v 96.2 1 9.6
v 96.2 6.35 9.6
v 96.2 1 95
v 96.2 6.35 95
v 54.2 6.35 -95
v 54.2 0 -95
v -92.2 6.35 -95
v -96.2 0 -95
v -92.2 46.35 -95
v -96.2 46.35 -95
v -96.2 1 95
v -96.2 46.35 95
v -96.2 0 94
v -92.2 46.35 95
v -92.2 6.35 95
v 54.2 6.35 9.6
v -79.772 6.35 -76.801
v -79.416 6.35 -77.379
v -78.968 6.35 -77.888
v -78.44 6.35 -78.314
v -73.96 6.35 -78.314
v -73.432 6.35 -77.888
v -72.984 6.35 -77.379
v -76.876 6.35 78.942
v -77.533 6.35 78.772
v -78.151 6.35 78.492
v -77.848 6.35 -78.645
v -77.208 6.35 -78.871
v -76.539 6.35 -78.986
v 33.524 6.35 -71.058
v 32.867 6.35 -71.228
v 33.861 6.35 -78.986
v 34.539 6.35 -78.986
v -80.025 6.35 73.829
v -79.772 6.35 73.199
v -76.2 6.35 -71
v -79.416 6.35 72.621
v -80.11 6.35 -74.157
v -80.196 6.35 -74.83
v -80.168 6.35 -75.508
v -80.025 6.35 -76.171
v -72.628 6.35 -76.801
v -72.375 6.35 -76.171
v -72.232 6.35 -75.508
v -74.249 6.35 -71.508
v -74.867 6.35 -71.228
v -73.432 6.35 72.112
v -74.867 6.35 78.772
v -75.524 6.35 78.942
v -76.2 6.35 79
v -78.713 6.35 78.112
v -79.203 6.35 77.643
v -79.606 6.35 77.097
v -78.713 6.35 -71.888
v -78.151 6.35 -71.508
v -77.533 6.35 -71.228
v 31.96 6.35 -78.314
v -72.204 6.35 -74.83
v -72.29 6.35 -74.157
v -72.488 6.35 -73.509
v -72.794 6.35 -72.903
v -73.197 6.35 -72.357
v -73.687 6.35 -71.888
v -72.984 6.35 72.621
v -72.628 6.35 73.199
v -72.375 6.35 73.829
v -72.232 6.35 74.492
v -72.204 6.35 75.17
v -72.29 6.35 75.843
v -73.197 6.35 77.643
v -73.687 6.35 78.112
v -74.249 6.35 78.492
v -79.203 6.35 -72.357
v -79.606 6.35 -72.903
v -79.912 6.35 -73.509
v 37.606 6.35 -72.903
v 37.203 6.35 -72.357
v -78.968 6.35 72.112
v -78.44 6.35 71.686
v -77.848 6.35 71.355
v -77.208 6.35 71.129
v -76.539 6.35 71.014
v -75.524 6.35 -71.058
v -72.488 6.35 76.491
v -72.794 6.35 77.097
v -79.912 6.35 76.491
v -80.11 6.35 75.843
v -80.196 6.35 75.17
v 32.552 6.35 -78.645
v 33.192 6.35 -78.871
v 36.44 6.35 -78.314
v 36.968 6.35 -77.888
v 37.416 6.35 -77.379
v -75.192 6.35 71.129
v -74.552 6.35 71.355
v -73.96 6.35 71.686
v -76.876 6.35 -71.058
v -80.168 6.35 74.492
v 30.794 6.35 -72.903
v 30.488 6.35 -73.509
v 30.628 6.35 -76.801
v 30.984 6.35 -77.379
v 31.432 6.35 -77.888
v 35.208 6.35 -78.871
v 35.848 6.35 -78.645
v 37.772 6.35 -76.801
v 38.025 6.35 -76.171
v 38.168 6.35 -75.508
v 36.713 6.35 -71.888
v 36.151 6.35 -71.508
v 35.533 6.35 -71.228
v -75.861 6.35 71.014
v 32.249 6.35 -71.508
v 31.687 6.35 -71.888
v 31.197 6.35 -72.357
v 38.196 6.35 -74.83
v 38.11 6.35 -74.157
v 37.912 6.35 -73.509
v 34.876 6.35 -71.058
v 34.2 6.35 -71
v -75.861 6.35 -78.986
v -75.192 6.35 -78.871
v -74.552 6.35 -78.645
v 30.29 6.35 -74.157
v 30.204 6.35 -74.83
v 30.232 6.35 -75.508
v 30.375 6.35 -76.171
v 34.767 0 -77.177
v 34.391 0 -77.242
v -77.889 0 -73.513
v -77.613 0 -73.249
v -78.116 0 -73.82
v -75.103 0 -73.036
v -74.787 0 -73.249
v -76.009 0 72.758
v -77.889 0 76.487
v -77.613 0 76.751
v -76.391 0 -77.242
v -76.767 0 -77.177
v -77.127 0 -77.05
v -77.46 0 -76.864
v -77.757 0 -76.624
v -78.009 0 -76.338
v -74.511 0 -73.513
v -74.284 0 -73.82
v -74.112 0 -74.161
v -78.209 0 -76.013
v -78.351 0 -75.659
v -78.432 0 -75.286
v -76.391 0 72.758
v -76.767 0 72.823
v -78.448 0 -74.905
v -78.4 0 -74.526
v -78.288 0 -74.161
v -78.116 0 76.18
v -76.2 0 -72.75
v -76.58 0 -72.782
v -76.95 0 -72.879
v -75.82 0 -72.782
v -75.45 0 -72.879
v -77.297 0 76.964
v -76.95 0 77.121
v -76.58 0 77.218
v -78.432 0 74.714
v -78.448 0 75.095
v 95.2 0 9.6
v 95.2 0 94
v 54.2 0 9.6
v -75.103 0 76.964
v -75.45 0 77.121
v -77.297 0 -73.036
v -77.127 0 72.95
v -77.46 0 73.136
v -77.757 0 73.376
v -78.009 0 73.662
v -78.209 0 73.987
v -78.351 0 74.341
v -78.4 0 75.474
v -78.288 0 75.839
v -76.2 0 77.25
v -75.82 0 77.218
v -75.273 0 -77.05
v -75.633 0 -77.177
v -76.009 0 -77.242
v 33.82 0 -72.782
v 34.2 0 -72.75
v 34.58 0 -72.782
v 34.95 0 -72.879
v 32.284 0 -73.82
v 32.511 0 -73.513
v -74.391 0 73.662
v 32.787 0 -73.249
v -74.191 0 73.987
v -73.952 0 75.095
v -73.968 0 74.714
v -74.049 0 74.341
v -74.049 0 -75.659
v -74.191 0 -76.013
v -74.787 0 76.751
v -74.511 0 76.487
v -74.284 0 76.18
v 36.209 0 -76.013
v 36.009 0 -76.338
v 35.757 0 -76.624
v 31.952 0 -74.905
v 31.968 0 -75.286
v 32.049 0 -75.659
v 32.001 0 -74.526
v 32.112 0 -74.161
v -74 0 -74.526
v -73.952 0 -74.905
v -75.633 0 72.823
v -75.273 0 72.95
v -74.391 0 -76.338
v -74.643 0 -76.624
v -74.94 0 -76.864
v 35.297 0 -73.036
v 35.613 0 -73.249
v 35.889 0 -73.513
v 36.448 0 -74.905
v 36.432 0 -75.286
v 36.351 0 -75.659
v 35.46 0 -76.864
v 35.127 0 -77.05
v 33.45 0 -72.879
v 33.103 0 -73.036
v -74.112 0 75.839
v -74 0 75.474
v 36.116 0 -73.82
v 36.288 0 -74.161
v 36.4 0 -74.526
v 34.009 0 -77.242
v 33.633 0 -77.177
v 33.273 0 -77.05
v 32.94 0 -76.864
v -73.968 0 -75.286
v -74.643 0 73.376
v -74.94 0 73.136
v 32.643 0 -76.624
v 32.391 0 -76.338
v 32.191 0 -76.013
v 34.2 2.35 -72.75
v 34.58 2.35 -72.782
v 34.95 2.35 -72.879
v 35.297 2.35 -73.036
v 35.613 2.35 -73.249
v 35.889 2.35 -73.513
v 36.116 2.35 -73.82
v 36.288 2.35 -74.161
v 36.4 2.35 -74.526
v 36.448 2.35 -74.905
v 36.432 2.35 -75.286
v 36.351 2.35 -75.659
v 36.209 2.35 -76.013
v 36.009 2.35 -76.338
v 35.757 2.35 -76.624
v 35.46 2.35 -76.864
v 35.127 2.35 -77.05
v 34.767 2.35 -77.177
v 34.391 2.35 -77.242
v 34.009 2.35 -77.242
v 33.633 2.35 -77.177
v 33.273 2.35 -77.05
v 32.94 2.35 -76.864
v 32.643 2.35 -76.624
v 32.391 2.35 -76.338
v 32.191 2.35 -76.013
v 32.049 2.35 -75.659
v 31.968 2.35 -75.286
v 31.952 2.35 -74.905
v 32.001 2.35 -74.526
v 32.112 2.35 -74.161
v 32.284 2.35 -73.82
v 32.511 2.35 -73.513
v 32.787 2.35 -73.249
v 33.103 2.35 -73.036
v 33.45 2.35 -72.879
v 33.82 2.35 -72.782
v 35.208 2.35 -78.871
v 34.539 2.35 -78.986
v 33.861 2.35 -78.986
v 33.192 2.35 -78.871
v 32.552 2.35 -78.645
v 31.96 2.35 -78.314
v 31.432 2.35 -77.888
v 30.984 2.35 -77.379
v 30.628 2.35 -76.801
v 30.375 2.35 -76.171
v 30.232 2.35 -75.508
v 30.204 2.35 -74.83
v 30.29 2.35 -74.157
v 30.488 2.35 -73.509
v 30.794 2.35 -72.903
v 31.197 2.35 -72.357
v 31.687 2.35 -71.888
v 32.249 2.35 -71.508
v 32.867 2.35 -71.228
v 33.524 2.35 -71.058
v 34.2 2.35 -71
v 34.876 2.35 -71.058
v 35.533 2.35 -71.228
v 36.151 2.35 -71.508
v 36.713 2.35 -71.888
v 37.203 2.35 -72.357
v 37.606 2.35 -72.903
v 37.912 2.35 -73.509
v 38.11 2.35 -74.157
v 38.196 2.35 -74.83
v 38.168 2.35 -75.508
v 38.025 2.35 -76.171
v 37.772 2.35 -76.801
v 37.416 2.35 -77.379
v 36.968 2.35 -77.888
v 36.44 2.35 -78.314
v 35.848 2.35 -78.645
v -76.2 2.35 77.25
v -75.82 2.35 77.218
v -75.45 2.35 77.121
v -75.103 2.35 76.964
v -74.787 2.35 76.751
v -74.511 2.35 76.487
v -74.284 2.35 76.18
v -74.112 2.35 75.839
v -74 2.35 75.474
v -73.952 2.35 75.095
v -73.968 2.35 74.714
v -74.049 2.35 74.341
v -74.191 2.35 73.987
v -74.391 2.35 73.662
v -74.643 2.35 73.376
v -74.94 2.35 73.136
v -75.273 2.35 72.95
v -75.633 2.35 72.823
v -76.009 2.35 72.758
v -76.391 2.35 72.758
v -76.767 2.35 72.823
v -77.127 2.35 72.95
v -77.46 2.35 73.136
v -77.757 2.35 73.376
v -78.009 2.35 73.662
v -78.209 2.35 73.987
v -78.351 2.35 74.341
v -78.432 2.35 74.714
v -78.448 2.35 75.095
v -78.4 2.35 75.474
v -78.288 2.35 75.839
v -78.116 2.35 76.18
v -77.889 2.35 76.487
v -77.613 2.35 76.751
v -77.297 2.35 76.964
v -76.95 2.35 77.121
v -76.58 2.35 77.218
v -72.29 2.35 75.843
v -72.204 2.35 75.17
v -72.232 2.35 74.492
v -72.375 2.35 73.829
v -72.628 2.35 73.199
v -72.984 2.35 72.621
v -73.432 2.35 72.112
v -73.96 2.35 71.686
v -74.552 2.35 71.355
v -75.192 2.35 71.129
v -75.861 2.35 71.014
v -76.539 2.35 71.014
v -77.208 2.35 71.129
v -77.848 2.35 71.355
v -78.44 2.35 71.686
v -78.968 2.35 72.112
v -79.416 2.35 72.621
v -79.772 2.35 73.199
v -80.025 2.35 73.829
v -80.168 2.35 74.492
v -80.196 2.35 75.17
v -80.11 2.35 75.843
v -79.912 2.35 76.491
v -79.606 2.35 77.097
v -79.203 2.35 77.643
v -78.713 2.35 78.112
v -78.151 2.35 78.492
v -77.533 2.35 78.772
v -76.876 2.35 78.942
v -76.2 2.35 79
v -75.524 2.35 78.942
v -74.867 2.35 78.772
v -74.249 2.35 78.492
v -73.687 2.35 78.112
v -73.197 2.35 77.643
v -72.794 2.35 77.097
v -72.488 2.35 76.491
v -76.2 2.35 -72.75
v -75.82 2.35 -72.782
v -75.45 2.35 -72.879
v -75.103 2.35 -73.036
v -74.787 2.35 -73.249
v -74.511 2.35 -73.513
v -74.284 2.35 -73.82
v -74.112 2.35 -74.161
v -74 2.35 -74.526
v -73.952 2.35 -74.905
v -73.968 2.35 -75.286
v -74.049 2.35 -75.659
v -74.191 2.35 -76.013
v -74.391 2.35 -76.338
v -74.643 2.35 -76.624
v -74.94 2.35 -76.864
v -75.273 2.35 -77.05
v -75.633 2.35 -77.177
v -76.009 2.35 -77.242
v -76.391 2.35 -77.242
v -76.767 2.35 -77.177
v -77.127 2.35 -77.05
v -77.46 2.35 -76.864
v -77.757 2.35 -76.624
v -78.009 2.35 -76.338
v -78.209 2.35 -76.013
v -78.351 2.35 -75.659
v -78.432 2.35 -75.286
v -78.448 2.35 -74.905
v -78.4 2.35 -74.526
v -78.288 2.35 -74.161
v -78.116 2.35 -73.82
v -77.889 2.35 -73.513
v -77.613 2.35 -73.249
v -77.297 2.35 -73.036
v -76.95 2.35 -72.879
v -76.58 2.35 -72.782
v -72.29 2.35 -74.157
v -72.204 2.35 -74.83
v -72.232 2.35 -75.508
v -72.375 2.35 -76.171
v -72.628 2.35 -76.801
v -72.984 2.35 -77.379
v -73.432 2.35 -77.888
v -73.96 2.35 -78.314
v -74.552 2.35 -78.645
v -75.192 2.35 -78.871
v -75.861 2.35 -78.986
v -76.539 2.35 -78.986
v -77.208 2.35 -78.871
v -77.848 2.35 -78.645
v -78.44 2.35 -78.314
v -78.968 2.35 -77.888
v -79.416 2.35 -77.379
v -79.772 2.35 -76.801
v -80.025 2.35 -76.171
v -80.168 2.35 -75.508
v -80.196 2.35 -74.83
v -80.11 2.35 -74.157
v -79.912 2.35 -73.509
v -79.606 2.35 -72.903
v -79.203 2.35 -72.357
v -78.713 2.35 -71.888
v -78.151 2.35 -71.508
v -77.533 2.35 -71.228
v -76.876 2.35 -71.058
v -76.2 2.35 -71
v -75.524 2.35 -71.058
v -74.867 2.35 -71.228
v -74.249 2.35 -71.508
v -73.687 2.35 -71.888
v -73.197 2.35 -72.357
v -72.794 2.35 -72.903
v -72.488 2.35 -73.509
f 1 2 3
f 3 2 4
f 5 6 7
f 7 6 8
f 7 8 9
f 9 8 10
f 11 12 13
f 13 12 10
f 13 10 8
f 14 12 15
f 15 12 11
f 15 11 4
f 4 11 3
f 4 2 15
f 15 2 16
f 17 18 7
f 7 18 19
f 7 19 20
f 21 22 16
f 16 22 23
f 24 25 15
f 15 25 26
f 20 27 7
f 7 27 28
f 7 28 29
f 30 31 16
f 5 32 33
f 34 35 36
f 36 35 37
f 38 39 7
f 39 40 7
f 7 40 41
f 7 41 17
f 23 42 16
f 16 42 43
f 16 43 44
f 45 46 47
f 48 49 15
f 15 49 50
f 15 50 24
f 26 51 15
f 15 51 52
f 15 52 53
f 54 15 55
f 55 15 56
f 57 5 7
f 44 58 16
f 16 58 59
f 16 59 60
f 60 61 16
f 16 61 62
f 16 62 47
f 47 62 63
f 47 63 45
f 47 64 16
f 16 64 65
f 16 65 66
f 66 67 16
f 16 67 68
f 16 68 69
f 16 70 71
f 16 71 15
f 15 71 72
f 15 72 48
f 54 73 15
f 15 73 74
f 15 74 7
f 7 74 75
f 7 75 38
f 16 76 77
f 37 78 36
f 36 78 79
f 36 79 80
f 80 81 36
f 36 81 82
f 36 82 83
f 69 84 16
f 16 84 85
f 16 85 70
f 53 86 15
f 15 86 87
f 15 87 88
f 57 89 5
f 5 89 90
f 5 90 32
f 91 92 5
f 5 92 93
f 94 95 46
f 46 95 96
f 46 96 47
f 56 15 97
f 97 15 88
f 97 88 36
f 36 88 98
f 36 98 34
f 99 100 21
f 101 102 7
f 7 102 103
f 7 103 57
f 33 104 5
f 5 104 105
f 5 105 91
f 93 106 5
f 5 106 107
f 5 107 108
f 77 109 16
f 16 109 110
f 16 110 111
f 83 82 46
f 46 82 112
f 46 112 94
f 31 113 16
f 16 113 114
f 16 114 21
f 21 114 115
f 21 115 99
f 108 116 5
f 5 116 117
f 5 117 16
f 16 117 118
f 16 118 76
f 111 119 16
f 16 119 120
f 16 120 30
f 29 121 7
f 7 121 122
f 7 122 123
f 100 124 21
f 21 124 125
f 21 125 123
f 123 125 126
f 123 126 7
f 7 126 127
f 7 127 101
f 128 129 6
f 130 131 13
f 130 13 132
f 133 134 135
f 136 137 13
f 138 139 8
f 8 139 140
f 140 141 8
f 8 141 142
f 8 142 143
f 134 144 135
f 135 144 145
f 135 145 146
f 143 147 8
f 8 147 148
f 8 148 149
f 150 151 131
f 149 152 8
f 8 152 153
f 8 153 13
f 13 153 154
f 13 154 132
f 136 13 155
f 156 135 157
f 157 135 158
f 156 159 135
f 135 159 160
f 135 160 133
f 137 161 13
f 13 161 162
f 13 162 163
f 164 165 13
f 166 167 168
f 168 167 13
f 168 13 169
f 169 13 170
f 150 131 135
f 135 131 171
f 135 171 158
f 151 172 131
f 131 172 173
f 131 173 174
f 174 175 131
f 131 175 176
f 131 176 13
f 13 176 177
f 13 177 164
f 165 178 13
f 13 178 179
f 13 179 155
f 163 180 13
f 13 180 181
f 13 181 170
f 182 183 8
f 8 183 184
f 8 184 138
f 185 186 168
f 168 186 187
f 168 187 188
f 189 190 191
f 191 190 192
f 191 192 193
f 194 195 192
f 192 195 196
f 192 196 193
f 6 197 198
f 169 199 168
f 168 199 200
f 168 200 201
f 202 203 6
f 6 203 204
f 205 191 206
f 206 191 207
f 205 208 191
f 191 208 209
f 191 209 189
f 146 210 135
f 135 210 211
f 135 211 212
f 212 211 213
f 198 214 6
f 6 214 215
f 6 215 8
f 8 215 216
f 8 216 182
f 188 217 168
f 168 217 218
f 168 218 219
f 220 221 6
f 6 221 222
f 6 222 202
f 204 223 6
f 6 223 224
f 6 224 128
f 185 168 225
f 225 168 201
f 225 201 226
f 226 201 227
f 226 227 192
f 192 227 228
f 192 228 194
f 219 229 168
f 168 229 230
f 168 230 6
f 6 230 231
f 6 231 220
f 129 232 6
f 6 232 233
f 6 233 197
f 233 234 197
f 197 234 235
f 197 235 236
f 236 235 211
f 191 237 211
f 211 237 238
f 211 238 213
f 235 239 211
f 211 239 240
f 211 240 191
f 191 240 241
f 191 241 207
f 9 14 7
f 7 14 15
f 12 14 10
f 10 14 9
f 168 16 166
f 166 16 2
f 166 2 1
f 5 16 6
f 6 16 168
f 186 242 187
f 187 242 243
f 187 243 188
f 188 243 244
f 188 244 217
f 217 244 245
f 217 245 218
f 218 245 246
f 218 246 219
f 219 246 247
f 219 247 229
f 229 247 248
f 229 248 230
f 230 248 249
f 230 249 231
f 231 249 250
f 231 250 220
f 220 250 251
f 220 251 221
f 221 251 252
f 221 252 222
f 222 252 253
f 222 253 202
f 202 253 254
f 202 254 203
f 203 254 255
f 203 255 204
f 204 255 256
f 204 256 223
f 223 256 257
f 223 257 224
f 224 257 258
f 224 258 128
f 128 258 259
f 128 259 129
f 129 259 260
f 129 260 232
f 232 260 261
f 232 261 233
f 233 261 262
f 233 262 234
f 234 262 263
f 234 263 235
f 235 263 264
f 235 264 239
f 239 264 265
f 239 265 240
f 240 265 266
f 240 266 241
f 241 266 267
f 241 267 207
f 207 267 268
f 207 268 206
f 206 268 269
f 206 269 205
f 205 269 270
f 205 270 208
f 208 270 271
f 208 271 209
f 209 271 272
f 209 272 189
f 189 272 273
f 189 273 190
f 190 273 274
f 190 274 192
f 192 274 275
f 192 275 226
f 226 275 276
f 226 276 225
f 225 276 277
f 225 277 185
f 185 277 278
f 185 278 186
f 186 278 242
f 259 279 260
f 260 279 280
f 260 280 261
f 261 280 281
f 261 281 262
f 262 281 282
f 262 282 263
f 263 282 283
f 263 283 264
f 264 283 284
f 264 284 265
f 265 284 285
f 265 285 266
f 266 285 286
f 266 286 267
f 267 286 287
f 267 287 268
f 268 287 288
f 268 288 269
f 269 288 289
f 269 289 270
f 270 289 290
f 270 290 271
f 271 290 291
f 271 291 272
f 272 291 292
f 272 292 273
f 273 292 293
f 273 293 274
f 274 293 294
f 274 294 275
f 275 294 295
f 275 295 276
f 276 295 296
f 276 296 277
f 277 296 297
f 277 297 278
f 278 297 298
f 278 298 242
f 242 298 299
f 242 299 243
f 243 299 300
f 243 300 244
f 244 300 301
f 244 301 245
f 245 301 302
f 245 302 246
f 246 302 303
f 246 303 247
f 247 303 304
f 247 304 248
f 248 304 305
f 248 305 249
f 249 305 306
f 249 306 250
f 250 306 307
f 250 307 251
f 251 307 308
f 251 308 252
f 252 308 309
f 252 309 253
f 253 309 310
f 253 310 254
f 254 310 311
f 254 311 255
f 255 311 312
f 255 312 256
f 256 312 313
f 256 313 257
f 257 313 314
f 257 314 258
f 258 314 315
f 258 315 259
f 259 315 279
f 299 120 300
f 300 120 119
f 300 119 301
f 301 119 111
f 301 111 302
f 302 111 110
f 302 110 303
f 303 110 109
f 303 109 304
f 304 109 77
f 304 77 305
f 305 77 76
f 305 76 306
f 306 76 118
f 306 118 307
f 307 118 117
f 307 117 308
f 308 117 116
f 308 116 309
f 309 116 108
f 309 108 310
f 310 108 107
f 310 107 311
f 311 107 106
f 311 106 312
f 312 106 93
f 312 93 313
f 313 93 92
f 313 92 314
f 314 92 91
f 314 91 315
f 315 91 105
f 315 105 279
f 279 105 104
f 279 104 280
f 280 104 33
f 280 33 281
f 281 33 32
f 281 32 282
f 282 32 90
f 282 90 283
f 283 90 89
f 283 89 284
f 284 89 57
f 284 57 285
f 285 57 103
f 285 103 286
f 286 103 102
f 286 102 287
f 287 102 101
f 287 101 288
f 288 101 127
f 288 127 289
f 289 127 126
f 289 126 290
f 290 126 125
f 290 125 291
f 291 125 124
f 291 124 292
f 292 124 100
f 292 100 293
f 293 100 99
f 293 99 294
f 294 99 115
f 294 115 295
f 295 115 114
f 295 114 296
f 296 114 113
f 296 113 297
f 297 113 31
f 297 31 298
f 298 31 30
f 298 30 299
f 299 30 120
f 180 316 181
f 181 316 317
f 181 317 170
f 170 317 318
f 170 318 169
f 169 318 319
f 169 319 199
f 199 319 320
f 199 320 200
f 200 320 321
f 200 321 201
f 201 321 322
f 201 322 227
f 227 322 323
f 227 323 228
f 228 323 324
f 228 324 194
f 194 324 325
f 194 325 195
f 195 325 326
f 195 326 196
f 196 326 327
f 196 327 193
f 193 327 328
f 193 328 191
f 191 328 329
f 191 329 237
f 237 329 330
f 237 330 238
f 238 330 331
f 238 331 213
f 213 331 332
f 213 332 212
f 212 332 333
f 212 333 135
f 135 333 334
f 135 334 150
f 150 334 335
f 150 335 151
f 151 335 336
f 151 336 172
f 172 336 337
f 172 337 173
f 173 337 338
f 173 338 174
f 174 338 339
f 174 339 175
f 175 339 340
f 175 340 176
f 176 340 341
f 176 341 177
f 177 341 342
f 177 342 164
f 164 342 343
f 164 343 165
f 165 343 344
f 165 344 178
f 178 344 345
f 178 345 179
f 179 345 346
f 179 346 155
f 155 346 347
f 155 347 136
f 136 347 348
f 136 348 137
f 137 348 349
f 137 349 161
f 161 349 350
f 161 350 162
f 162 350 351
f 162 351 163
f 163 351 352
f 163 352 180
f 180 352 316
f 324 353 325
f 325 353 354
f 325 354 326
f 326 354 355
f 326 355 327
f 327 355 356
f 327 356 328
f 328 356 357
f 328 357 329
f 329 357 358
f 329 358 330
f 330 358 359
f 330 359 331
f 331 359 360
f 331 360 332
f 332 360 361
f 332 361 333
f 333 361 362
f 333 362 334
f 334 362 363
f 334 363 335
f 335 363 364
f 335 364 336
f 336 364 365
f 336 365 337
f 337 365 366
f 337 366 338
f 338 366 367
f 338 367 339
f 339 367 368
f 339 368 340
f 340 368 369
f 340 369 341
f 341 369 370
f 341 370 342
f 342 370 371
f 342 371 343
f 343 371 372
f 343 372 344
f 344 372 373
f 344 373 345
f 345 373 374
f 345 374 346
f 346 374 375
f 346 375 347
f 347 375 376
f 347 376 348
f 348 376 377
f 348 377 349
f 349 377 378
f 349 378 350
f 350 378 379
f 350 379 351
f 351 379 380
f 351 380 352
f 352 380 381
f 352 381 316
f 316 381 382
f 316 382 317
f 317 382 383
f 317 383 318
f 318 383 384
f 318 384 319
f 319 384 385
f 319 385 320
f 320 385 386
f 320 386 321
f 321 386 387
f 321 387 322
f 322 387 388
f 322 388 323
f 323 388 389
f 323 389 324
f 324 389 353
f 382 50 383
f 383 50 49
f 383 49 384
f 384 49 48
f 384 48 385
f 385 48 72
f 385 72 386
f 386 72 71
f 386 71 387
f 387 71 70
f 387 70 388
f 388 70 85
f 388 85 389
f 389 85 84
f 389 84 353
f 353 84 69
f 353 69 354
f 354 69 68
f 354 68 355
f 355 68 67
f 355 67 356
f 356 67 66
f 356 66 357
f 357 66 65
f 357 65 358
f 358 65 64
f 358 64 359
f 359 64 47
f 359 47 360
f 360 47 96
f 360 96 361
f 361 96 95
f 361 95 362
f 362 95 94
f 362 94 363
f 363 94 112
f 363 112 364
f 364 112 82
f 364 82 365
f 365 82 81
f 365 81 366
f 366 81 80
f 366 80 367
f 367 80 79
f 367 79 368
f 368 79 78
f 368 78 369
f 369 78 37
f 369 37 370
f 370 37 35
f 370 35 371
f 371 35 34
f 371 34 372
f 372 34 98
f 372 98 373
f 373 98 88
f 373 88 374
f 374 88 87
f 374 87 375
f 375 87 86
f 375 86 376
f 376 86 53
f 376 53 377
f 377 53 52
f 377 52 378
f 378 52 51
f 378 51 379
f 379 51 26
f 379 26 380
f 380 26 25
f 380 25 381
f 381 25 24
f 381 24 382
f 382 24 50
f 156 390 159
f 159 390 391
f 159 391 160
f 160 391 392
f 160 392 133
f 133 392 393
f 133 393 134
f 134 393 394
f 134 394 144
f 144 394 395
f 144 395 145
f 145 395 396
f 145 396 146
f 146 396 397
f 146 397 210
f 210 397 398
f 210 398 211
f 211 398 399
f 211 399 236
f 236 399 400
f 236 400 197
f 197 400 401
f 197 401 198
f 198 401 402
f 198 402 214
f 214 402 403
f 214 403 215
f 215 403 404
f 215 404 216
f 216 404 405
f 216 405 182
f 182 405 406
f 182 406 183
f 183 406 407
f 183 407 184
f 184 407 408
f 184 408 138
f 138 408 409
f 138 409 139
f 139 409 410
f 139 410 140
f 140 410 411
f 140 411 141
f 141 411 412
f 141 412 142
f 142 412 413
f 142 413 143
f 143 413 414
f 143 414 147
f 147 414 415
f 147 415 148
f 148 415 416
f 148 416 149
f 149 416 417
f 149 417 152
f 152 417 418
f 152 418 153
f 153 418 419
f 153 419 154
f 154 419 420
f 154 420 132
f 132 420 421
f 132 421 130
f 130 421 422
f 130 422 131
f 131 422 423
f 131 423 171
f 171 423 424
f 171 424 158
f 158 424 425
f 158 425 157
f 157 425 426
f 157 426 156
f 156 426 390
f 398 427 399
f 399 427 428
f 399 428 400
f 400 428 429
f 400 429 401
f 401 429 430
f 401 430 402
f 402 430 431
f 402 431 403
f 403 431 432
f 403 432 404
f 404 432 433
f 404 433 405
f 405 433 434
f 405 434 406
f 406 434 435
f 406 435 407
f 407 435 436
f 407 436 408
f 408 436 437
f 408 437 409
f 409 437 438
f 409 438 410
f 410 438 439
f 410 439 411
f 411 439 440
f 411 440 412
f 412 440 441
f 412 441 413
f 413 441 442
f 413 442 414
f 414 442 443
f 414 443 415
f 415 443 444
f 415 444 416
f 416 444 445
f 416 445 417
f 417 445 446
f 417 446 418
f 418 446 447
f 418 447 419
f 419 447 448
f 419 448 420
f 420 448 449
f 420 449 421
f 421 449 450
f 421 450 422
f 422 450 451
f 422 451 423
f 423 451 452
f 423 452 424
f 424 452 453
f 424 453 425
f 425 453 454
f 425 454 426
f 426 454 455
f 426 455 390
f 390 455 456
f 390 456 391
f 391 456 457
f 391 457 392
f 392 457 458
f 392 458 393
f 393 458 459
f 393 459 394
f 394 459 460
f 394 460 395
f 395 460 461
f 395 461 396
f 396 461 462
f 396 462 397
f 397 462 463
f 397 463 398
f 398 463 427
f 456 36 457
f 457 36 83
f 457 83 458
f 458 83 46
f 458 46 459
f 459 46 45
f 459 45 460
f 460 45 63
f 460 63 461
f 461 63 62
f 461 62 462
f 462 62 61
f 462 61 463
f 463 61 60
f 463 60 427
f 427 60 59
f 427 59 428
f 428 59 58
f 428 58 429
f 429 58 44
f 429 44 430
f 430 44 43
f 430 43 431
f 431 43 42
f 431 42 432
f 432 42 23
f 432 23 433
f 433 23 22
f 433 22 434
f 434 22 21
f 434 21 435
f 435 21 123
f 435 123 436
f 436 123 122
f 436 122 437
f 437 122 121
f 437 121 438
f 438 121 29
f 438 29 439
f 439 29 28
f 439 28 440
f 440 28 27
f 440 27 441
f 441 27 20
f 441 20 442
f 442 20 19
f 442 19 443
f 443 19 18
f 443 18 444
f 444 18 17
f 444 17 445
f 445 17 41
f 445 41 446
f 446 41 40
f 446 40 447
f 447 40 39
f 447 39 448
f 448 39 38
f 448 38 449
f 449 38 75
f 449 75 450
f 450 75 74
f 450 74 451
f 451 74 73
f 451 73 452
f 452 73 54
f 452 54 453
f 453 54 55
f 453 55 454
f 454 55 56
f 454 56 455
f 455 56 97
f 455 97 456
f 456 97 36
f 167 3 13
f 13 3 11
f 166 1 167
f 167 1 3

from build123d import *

# Parameters (mm, degrees)
SKETCH1_W                      = 192.4
SKETCH1_H                      = 190
BOSS_EXTRUDE1_DEPTH            = 6.35
BOSS_EXTRUDE2_DEPTH            = 40
CUT_EXTRUDE1_REACH             = 8.35
SKETCH4_W                      = 42
SKETCH4_H                      = 104.6
CBORE_FOR_M4_SHCS1_D           = 4.5
CBORE_FOR_M4_SHCS1_DEPTH       = 6.35
CBORE_FOR_M4_SHCS1_CBORE_D     = 8
CBORE_FOR_M4_SHCS1_CBORE_DEPTH = 4
CHAMFER1_SIZE                  = 1


with BuildPart() as part:
    # Sketch1 → Boss-Extrude1 (new body)
    with BuildSketch(Plane(origin=(0, 0, 0), x_dir=(1, 0, 0), z_dir=(0, 1, 0))):
        Rectangle(SKETCH1_W, SKETCH1_H)
    extrude(amount=BOSS_EXTRUDE1_DEPTH)

    # Sketch2 → Boss-Extrude2 (add)
    with BuildSketch(Plane(origin=(0, 6.35, 0), x_dir=(1, 0, 0), z_dir=(0, 1, 0))):
        Polygon((-92.2, 91), (-92.2, -91), (-92.2, -95), (-96.2, -95), (-96.2, 95), (-92.2, 95), align=None)
    extrude(amount=BOSS_EXTRUDE2_DEPTH)

    # Sketch4 → Cut-Extrude1 (cut, up to next)
    with BuildSketch(Plane(origin=(0, 6.35, 0), x_dir=(1, 0, 0), z_dir=(0, 1, 0)), mode=Mode.PRIVATE) as cut_extrude1_sk1:
        with Locations((75.2, 42.7)):
            Rectangle(SKETCH4_W, SKETCH4_H)
    cut_extrude1_tool1 = extrude(cut_extrude1_sk1.sketch, amount=-CUT_EXTRUDE1_REACH, mode=Mode.PRIVATE) & part.part
    add(cut_extrude1_tool1.solids().sort_by_distance((75.2, 6.35, -42.7))[0], mode=Mode.SUBTRACT)

    # CBORE for M4 SHCS1
    with Locations(Plane(origin=(0, 6.35, 0), x_dir=(1, 0, 0), z_dir=(0, 1, 0))):
        with Locations((34.2, 75), (-76.2, 75), (-76.2, -75)):
            CounterBoreHole(CBORE_FOR_M4_SHCS1_D / 2, CBORE_FOR_M4_SHCS1_CBORE_D / 2, CBORE_FOR_M4_SHCS1_CBORE_DEPTH, depth=CBORE_FOR_M4_SHCS1_DEPTH)

    # Chamfer1
    chamfer1_edges = [part.edges().sort_by_distance(p)[0] for p in [
        (0, 0, 95),
        (96.2, 0, 52.3),
    ]]
    chamfer(chamfer1_edges, length=CHAMFER1_SIZE)


solid = part.part
